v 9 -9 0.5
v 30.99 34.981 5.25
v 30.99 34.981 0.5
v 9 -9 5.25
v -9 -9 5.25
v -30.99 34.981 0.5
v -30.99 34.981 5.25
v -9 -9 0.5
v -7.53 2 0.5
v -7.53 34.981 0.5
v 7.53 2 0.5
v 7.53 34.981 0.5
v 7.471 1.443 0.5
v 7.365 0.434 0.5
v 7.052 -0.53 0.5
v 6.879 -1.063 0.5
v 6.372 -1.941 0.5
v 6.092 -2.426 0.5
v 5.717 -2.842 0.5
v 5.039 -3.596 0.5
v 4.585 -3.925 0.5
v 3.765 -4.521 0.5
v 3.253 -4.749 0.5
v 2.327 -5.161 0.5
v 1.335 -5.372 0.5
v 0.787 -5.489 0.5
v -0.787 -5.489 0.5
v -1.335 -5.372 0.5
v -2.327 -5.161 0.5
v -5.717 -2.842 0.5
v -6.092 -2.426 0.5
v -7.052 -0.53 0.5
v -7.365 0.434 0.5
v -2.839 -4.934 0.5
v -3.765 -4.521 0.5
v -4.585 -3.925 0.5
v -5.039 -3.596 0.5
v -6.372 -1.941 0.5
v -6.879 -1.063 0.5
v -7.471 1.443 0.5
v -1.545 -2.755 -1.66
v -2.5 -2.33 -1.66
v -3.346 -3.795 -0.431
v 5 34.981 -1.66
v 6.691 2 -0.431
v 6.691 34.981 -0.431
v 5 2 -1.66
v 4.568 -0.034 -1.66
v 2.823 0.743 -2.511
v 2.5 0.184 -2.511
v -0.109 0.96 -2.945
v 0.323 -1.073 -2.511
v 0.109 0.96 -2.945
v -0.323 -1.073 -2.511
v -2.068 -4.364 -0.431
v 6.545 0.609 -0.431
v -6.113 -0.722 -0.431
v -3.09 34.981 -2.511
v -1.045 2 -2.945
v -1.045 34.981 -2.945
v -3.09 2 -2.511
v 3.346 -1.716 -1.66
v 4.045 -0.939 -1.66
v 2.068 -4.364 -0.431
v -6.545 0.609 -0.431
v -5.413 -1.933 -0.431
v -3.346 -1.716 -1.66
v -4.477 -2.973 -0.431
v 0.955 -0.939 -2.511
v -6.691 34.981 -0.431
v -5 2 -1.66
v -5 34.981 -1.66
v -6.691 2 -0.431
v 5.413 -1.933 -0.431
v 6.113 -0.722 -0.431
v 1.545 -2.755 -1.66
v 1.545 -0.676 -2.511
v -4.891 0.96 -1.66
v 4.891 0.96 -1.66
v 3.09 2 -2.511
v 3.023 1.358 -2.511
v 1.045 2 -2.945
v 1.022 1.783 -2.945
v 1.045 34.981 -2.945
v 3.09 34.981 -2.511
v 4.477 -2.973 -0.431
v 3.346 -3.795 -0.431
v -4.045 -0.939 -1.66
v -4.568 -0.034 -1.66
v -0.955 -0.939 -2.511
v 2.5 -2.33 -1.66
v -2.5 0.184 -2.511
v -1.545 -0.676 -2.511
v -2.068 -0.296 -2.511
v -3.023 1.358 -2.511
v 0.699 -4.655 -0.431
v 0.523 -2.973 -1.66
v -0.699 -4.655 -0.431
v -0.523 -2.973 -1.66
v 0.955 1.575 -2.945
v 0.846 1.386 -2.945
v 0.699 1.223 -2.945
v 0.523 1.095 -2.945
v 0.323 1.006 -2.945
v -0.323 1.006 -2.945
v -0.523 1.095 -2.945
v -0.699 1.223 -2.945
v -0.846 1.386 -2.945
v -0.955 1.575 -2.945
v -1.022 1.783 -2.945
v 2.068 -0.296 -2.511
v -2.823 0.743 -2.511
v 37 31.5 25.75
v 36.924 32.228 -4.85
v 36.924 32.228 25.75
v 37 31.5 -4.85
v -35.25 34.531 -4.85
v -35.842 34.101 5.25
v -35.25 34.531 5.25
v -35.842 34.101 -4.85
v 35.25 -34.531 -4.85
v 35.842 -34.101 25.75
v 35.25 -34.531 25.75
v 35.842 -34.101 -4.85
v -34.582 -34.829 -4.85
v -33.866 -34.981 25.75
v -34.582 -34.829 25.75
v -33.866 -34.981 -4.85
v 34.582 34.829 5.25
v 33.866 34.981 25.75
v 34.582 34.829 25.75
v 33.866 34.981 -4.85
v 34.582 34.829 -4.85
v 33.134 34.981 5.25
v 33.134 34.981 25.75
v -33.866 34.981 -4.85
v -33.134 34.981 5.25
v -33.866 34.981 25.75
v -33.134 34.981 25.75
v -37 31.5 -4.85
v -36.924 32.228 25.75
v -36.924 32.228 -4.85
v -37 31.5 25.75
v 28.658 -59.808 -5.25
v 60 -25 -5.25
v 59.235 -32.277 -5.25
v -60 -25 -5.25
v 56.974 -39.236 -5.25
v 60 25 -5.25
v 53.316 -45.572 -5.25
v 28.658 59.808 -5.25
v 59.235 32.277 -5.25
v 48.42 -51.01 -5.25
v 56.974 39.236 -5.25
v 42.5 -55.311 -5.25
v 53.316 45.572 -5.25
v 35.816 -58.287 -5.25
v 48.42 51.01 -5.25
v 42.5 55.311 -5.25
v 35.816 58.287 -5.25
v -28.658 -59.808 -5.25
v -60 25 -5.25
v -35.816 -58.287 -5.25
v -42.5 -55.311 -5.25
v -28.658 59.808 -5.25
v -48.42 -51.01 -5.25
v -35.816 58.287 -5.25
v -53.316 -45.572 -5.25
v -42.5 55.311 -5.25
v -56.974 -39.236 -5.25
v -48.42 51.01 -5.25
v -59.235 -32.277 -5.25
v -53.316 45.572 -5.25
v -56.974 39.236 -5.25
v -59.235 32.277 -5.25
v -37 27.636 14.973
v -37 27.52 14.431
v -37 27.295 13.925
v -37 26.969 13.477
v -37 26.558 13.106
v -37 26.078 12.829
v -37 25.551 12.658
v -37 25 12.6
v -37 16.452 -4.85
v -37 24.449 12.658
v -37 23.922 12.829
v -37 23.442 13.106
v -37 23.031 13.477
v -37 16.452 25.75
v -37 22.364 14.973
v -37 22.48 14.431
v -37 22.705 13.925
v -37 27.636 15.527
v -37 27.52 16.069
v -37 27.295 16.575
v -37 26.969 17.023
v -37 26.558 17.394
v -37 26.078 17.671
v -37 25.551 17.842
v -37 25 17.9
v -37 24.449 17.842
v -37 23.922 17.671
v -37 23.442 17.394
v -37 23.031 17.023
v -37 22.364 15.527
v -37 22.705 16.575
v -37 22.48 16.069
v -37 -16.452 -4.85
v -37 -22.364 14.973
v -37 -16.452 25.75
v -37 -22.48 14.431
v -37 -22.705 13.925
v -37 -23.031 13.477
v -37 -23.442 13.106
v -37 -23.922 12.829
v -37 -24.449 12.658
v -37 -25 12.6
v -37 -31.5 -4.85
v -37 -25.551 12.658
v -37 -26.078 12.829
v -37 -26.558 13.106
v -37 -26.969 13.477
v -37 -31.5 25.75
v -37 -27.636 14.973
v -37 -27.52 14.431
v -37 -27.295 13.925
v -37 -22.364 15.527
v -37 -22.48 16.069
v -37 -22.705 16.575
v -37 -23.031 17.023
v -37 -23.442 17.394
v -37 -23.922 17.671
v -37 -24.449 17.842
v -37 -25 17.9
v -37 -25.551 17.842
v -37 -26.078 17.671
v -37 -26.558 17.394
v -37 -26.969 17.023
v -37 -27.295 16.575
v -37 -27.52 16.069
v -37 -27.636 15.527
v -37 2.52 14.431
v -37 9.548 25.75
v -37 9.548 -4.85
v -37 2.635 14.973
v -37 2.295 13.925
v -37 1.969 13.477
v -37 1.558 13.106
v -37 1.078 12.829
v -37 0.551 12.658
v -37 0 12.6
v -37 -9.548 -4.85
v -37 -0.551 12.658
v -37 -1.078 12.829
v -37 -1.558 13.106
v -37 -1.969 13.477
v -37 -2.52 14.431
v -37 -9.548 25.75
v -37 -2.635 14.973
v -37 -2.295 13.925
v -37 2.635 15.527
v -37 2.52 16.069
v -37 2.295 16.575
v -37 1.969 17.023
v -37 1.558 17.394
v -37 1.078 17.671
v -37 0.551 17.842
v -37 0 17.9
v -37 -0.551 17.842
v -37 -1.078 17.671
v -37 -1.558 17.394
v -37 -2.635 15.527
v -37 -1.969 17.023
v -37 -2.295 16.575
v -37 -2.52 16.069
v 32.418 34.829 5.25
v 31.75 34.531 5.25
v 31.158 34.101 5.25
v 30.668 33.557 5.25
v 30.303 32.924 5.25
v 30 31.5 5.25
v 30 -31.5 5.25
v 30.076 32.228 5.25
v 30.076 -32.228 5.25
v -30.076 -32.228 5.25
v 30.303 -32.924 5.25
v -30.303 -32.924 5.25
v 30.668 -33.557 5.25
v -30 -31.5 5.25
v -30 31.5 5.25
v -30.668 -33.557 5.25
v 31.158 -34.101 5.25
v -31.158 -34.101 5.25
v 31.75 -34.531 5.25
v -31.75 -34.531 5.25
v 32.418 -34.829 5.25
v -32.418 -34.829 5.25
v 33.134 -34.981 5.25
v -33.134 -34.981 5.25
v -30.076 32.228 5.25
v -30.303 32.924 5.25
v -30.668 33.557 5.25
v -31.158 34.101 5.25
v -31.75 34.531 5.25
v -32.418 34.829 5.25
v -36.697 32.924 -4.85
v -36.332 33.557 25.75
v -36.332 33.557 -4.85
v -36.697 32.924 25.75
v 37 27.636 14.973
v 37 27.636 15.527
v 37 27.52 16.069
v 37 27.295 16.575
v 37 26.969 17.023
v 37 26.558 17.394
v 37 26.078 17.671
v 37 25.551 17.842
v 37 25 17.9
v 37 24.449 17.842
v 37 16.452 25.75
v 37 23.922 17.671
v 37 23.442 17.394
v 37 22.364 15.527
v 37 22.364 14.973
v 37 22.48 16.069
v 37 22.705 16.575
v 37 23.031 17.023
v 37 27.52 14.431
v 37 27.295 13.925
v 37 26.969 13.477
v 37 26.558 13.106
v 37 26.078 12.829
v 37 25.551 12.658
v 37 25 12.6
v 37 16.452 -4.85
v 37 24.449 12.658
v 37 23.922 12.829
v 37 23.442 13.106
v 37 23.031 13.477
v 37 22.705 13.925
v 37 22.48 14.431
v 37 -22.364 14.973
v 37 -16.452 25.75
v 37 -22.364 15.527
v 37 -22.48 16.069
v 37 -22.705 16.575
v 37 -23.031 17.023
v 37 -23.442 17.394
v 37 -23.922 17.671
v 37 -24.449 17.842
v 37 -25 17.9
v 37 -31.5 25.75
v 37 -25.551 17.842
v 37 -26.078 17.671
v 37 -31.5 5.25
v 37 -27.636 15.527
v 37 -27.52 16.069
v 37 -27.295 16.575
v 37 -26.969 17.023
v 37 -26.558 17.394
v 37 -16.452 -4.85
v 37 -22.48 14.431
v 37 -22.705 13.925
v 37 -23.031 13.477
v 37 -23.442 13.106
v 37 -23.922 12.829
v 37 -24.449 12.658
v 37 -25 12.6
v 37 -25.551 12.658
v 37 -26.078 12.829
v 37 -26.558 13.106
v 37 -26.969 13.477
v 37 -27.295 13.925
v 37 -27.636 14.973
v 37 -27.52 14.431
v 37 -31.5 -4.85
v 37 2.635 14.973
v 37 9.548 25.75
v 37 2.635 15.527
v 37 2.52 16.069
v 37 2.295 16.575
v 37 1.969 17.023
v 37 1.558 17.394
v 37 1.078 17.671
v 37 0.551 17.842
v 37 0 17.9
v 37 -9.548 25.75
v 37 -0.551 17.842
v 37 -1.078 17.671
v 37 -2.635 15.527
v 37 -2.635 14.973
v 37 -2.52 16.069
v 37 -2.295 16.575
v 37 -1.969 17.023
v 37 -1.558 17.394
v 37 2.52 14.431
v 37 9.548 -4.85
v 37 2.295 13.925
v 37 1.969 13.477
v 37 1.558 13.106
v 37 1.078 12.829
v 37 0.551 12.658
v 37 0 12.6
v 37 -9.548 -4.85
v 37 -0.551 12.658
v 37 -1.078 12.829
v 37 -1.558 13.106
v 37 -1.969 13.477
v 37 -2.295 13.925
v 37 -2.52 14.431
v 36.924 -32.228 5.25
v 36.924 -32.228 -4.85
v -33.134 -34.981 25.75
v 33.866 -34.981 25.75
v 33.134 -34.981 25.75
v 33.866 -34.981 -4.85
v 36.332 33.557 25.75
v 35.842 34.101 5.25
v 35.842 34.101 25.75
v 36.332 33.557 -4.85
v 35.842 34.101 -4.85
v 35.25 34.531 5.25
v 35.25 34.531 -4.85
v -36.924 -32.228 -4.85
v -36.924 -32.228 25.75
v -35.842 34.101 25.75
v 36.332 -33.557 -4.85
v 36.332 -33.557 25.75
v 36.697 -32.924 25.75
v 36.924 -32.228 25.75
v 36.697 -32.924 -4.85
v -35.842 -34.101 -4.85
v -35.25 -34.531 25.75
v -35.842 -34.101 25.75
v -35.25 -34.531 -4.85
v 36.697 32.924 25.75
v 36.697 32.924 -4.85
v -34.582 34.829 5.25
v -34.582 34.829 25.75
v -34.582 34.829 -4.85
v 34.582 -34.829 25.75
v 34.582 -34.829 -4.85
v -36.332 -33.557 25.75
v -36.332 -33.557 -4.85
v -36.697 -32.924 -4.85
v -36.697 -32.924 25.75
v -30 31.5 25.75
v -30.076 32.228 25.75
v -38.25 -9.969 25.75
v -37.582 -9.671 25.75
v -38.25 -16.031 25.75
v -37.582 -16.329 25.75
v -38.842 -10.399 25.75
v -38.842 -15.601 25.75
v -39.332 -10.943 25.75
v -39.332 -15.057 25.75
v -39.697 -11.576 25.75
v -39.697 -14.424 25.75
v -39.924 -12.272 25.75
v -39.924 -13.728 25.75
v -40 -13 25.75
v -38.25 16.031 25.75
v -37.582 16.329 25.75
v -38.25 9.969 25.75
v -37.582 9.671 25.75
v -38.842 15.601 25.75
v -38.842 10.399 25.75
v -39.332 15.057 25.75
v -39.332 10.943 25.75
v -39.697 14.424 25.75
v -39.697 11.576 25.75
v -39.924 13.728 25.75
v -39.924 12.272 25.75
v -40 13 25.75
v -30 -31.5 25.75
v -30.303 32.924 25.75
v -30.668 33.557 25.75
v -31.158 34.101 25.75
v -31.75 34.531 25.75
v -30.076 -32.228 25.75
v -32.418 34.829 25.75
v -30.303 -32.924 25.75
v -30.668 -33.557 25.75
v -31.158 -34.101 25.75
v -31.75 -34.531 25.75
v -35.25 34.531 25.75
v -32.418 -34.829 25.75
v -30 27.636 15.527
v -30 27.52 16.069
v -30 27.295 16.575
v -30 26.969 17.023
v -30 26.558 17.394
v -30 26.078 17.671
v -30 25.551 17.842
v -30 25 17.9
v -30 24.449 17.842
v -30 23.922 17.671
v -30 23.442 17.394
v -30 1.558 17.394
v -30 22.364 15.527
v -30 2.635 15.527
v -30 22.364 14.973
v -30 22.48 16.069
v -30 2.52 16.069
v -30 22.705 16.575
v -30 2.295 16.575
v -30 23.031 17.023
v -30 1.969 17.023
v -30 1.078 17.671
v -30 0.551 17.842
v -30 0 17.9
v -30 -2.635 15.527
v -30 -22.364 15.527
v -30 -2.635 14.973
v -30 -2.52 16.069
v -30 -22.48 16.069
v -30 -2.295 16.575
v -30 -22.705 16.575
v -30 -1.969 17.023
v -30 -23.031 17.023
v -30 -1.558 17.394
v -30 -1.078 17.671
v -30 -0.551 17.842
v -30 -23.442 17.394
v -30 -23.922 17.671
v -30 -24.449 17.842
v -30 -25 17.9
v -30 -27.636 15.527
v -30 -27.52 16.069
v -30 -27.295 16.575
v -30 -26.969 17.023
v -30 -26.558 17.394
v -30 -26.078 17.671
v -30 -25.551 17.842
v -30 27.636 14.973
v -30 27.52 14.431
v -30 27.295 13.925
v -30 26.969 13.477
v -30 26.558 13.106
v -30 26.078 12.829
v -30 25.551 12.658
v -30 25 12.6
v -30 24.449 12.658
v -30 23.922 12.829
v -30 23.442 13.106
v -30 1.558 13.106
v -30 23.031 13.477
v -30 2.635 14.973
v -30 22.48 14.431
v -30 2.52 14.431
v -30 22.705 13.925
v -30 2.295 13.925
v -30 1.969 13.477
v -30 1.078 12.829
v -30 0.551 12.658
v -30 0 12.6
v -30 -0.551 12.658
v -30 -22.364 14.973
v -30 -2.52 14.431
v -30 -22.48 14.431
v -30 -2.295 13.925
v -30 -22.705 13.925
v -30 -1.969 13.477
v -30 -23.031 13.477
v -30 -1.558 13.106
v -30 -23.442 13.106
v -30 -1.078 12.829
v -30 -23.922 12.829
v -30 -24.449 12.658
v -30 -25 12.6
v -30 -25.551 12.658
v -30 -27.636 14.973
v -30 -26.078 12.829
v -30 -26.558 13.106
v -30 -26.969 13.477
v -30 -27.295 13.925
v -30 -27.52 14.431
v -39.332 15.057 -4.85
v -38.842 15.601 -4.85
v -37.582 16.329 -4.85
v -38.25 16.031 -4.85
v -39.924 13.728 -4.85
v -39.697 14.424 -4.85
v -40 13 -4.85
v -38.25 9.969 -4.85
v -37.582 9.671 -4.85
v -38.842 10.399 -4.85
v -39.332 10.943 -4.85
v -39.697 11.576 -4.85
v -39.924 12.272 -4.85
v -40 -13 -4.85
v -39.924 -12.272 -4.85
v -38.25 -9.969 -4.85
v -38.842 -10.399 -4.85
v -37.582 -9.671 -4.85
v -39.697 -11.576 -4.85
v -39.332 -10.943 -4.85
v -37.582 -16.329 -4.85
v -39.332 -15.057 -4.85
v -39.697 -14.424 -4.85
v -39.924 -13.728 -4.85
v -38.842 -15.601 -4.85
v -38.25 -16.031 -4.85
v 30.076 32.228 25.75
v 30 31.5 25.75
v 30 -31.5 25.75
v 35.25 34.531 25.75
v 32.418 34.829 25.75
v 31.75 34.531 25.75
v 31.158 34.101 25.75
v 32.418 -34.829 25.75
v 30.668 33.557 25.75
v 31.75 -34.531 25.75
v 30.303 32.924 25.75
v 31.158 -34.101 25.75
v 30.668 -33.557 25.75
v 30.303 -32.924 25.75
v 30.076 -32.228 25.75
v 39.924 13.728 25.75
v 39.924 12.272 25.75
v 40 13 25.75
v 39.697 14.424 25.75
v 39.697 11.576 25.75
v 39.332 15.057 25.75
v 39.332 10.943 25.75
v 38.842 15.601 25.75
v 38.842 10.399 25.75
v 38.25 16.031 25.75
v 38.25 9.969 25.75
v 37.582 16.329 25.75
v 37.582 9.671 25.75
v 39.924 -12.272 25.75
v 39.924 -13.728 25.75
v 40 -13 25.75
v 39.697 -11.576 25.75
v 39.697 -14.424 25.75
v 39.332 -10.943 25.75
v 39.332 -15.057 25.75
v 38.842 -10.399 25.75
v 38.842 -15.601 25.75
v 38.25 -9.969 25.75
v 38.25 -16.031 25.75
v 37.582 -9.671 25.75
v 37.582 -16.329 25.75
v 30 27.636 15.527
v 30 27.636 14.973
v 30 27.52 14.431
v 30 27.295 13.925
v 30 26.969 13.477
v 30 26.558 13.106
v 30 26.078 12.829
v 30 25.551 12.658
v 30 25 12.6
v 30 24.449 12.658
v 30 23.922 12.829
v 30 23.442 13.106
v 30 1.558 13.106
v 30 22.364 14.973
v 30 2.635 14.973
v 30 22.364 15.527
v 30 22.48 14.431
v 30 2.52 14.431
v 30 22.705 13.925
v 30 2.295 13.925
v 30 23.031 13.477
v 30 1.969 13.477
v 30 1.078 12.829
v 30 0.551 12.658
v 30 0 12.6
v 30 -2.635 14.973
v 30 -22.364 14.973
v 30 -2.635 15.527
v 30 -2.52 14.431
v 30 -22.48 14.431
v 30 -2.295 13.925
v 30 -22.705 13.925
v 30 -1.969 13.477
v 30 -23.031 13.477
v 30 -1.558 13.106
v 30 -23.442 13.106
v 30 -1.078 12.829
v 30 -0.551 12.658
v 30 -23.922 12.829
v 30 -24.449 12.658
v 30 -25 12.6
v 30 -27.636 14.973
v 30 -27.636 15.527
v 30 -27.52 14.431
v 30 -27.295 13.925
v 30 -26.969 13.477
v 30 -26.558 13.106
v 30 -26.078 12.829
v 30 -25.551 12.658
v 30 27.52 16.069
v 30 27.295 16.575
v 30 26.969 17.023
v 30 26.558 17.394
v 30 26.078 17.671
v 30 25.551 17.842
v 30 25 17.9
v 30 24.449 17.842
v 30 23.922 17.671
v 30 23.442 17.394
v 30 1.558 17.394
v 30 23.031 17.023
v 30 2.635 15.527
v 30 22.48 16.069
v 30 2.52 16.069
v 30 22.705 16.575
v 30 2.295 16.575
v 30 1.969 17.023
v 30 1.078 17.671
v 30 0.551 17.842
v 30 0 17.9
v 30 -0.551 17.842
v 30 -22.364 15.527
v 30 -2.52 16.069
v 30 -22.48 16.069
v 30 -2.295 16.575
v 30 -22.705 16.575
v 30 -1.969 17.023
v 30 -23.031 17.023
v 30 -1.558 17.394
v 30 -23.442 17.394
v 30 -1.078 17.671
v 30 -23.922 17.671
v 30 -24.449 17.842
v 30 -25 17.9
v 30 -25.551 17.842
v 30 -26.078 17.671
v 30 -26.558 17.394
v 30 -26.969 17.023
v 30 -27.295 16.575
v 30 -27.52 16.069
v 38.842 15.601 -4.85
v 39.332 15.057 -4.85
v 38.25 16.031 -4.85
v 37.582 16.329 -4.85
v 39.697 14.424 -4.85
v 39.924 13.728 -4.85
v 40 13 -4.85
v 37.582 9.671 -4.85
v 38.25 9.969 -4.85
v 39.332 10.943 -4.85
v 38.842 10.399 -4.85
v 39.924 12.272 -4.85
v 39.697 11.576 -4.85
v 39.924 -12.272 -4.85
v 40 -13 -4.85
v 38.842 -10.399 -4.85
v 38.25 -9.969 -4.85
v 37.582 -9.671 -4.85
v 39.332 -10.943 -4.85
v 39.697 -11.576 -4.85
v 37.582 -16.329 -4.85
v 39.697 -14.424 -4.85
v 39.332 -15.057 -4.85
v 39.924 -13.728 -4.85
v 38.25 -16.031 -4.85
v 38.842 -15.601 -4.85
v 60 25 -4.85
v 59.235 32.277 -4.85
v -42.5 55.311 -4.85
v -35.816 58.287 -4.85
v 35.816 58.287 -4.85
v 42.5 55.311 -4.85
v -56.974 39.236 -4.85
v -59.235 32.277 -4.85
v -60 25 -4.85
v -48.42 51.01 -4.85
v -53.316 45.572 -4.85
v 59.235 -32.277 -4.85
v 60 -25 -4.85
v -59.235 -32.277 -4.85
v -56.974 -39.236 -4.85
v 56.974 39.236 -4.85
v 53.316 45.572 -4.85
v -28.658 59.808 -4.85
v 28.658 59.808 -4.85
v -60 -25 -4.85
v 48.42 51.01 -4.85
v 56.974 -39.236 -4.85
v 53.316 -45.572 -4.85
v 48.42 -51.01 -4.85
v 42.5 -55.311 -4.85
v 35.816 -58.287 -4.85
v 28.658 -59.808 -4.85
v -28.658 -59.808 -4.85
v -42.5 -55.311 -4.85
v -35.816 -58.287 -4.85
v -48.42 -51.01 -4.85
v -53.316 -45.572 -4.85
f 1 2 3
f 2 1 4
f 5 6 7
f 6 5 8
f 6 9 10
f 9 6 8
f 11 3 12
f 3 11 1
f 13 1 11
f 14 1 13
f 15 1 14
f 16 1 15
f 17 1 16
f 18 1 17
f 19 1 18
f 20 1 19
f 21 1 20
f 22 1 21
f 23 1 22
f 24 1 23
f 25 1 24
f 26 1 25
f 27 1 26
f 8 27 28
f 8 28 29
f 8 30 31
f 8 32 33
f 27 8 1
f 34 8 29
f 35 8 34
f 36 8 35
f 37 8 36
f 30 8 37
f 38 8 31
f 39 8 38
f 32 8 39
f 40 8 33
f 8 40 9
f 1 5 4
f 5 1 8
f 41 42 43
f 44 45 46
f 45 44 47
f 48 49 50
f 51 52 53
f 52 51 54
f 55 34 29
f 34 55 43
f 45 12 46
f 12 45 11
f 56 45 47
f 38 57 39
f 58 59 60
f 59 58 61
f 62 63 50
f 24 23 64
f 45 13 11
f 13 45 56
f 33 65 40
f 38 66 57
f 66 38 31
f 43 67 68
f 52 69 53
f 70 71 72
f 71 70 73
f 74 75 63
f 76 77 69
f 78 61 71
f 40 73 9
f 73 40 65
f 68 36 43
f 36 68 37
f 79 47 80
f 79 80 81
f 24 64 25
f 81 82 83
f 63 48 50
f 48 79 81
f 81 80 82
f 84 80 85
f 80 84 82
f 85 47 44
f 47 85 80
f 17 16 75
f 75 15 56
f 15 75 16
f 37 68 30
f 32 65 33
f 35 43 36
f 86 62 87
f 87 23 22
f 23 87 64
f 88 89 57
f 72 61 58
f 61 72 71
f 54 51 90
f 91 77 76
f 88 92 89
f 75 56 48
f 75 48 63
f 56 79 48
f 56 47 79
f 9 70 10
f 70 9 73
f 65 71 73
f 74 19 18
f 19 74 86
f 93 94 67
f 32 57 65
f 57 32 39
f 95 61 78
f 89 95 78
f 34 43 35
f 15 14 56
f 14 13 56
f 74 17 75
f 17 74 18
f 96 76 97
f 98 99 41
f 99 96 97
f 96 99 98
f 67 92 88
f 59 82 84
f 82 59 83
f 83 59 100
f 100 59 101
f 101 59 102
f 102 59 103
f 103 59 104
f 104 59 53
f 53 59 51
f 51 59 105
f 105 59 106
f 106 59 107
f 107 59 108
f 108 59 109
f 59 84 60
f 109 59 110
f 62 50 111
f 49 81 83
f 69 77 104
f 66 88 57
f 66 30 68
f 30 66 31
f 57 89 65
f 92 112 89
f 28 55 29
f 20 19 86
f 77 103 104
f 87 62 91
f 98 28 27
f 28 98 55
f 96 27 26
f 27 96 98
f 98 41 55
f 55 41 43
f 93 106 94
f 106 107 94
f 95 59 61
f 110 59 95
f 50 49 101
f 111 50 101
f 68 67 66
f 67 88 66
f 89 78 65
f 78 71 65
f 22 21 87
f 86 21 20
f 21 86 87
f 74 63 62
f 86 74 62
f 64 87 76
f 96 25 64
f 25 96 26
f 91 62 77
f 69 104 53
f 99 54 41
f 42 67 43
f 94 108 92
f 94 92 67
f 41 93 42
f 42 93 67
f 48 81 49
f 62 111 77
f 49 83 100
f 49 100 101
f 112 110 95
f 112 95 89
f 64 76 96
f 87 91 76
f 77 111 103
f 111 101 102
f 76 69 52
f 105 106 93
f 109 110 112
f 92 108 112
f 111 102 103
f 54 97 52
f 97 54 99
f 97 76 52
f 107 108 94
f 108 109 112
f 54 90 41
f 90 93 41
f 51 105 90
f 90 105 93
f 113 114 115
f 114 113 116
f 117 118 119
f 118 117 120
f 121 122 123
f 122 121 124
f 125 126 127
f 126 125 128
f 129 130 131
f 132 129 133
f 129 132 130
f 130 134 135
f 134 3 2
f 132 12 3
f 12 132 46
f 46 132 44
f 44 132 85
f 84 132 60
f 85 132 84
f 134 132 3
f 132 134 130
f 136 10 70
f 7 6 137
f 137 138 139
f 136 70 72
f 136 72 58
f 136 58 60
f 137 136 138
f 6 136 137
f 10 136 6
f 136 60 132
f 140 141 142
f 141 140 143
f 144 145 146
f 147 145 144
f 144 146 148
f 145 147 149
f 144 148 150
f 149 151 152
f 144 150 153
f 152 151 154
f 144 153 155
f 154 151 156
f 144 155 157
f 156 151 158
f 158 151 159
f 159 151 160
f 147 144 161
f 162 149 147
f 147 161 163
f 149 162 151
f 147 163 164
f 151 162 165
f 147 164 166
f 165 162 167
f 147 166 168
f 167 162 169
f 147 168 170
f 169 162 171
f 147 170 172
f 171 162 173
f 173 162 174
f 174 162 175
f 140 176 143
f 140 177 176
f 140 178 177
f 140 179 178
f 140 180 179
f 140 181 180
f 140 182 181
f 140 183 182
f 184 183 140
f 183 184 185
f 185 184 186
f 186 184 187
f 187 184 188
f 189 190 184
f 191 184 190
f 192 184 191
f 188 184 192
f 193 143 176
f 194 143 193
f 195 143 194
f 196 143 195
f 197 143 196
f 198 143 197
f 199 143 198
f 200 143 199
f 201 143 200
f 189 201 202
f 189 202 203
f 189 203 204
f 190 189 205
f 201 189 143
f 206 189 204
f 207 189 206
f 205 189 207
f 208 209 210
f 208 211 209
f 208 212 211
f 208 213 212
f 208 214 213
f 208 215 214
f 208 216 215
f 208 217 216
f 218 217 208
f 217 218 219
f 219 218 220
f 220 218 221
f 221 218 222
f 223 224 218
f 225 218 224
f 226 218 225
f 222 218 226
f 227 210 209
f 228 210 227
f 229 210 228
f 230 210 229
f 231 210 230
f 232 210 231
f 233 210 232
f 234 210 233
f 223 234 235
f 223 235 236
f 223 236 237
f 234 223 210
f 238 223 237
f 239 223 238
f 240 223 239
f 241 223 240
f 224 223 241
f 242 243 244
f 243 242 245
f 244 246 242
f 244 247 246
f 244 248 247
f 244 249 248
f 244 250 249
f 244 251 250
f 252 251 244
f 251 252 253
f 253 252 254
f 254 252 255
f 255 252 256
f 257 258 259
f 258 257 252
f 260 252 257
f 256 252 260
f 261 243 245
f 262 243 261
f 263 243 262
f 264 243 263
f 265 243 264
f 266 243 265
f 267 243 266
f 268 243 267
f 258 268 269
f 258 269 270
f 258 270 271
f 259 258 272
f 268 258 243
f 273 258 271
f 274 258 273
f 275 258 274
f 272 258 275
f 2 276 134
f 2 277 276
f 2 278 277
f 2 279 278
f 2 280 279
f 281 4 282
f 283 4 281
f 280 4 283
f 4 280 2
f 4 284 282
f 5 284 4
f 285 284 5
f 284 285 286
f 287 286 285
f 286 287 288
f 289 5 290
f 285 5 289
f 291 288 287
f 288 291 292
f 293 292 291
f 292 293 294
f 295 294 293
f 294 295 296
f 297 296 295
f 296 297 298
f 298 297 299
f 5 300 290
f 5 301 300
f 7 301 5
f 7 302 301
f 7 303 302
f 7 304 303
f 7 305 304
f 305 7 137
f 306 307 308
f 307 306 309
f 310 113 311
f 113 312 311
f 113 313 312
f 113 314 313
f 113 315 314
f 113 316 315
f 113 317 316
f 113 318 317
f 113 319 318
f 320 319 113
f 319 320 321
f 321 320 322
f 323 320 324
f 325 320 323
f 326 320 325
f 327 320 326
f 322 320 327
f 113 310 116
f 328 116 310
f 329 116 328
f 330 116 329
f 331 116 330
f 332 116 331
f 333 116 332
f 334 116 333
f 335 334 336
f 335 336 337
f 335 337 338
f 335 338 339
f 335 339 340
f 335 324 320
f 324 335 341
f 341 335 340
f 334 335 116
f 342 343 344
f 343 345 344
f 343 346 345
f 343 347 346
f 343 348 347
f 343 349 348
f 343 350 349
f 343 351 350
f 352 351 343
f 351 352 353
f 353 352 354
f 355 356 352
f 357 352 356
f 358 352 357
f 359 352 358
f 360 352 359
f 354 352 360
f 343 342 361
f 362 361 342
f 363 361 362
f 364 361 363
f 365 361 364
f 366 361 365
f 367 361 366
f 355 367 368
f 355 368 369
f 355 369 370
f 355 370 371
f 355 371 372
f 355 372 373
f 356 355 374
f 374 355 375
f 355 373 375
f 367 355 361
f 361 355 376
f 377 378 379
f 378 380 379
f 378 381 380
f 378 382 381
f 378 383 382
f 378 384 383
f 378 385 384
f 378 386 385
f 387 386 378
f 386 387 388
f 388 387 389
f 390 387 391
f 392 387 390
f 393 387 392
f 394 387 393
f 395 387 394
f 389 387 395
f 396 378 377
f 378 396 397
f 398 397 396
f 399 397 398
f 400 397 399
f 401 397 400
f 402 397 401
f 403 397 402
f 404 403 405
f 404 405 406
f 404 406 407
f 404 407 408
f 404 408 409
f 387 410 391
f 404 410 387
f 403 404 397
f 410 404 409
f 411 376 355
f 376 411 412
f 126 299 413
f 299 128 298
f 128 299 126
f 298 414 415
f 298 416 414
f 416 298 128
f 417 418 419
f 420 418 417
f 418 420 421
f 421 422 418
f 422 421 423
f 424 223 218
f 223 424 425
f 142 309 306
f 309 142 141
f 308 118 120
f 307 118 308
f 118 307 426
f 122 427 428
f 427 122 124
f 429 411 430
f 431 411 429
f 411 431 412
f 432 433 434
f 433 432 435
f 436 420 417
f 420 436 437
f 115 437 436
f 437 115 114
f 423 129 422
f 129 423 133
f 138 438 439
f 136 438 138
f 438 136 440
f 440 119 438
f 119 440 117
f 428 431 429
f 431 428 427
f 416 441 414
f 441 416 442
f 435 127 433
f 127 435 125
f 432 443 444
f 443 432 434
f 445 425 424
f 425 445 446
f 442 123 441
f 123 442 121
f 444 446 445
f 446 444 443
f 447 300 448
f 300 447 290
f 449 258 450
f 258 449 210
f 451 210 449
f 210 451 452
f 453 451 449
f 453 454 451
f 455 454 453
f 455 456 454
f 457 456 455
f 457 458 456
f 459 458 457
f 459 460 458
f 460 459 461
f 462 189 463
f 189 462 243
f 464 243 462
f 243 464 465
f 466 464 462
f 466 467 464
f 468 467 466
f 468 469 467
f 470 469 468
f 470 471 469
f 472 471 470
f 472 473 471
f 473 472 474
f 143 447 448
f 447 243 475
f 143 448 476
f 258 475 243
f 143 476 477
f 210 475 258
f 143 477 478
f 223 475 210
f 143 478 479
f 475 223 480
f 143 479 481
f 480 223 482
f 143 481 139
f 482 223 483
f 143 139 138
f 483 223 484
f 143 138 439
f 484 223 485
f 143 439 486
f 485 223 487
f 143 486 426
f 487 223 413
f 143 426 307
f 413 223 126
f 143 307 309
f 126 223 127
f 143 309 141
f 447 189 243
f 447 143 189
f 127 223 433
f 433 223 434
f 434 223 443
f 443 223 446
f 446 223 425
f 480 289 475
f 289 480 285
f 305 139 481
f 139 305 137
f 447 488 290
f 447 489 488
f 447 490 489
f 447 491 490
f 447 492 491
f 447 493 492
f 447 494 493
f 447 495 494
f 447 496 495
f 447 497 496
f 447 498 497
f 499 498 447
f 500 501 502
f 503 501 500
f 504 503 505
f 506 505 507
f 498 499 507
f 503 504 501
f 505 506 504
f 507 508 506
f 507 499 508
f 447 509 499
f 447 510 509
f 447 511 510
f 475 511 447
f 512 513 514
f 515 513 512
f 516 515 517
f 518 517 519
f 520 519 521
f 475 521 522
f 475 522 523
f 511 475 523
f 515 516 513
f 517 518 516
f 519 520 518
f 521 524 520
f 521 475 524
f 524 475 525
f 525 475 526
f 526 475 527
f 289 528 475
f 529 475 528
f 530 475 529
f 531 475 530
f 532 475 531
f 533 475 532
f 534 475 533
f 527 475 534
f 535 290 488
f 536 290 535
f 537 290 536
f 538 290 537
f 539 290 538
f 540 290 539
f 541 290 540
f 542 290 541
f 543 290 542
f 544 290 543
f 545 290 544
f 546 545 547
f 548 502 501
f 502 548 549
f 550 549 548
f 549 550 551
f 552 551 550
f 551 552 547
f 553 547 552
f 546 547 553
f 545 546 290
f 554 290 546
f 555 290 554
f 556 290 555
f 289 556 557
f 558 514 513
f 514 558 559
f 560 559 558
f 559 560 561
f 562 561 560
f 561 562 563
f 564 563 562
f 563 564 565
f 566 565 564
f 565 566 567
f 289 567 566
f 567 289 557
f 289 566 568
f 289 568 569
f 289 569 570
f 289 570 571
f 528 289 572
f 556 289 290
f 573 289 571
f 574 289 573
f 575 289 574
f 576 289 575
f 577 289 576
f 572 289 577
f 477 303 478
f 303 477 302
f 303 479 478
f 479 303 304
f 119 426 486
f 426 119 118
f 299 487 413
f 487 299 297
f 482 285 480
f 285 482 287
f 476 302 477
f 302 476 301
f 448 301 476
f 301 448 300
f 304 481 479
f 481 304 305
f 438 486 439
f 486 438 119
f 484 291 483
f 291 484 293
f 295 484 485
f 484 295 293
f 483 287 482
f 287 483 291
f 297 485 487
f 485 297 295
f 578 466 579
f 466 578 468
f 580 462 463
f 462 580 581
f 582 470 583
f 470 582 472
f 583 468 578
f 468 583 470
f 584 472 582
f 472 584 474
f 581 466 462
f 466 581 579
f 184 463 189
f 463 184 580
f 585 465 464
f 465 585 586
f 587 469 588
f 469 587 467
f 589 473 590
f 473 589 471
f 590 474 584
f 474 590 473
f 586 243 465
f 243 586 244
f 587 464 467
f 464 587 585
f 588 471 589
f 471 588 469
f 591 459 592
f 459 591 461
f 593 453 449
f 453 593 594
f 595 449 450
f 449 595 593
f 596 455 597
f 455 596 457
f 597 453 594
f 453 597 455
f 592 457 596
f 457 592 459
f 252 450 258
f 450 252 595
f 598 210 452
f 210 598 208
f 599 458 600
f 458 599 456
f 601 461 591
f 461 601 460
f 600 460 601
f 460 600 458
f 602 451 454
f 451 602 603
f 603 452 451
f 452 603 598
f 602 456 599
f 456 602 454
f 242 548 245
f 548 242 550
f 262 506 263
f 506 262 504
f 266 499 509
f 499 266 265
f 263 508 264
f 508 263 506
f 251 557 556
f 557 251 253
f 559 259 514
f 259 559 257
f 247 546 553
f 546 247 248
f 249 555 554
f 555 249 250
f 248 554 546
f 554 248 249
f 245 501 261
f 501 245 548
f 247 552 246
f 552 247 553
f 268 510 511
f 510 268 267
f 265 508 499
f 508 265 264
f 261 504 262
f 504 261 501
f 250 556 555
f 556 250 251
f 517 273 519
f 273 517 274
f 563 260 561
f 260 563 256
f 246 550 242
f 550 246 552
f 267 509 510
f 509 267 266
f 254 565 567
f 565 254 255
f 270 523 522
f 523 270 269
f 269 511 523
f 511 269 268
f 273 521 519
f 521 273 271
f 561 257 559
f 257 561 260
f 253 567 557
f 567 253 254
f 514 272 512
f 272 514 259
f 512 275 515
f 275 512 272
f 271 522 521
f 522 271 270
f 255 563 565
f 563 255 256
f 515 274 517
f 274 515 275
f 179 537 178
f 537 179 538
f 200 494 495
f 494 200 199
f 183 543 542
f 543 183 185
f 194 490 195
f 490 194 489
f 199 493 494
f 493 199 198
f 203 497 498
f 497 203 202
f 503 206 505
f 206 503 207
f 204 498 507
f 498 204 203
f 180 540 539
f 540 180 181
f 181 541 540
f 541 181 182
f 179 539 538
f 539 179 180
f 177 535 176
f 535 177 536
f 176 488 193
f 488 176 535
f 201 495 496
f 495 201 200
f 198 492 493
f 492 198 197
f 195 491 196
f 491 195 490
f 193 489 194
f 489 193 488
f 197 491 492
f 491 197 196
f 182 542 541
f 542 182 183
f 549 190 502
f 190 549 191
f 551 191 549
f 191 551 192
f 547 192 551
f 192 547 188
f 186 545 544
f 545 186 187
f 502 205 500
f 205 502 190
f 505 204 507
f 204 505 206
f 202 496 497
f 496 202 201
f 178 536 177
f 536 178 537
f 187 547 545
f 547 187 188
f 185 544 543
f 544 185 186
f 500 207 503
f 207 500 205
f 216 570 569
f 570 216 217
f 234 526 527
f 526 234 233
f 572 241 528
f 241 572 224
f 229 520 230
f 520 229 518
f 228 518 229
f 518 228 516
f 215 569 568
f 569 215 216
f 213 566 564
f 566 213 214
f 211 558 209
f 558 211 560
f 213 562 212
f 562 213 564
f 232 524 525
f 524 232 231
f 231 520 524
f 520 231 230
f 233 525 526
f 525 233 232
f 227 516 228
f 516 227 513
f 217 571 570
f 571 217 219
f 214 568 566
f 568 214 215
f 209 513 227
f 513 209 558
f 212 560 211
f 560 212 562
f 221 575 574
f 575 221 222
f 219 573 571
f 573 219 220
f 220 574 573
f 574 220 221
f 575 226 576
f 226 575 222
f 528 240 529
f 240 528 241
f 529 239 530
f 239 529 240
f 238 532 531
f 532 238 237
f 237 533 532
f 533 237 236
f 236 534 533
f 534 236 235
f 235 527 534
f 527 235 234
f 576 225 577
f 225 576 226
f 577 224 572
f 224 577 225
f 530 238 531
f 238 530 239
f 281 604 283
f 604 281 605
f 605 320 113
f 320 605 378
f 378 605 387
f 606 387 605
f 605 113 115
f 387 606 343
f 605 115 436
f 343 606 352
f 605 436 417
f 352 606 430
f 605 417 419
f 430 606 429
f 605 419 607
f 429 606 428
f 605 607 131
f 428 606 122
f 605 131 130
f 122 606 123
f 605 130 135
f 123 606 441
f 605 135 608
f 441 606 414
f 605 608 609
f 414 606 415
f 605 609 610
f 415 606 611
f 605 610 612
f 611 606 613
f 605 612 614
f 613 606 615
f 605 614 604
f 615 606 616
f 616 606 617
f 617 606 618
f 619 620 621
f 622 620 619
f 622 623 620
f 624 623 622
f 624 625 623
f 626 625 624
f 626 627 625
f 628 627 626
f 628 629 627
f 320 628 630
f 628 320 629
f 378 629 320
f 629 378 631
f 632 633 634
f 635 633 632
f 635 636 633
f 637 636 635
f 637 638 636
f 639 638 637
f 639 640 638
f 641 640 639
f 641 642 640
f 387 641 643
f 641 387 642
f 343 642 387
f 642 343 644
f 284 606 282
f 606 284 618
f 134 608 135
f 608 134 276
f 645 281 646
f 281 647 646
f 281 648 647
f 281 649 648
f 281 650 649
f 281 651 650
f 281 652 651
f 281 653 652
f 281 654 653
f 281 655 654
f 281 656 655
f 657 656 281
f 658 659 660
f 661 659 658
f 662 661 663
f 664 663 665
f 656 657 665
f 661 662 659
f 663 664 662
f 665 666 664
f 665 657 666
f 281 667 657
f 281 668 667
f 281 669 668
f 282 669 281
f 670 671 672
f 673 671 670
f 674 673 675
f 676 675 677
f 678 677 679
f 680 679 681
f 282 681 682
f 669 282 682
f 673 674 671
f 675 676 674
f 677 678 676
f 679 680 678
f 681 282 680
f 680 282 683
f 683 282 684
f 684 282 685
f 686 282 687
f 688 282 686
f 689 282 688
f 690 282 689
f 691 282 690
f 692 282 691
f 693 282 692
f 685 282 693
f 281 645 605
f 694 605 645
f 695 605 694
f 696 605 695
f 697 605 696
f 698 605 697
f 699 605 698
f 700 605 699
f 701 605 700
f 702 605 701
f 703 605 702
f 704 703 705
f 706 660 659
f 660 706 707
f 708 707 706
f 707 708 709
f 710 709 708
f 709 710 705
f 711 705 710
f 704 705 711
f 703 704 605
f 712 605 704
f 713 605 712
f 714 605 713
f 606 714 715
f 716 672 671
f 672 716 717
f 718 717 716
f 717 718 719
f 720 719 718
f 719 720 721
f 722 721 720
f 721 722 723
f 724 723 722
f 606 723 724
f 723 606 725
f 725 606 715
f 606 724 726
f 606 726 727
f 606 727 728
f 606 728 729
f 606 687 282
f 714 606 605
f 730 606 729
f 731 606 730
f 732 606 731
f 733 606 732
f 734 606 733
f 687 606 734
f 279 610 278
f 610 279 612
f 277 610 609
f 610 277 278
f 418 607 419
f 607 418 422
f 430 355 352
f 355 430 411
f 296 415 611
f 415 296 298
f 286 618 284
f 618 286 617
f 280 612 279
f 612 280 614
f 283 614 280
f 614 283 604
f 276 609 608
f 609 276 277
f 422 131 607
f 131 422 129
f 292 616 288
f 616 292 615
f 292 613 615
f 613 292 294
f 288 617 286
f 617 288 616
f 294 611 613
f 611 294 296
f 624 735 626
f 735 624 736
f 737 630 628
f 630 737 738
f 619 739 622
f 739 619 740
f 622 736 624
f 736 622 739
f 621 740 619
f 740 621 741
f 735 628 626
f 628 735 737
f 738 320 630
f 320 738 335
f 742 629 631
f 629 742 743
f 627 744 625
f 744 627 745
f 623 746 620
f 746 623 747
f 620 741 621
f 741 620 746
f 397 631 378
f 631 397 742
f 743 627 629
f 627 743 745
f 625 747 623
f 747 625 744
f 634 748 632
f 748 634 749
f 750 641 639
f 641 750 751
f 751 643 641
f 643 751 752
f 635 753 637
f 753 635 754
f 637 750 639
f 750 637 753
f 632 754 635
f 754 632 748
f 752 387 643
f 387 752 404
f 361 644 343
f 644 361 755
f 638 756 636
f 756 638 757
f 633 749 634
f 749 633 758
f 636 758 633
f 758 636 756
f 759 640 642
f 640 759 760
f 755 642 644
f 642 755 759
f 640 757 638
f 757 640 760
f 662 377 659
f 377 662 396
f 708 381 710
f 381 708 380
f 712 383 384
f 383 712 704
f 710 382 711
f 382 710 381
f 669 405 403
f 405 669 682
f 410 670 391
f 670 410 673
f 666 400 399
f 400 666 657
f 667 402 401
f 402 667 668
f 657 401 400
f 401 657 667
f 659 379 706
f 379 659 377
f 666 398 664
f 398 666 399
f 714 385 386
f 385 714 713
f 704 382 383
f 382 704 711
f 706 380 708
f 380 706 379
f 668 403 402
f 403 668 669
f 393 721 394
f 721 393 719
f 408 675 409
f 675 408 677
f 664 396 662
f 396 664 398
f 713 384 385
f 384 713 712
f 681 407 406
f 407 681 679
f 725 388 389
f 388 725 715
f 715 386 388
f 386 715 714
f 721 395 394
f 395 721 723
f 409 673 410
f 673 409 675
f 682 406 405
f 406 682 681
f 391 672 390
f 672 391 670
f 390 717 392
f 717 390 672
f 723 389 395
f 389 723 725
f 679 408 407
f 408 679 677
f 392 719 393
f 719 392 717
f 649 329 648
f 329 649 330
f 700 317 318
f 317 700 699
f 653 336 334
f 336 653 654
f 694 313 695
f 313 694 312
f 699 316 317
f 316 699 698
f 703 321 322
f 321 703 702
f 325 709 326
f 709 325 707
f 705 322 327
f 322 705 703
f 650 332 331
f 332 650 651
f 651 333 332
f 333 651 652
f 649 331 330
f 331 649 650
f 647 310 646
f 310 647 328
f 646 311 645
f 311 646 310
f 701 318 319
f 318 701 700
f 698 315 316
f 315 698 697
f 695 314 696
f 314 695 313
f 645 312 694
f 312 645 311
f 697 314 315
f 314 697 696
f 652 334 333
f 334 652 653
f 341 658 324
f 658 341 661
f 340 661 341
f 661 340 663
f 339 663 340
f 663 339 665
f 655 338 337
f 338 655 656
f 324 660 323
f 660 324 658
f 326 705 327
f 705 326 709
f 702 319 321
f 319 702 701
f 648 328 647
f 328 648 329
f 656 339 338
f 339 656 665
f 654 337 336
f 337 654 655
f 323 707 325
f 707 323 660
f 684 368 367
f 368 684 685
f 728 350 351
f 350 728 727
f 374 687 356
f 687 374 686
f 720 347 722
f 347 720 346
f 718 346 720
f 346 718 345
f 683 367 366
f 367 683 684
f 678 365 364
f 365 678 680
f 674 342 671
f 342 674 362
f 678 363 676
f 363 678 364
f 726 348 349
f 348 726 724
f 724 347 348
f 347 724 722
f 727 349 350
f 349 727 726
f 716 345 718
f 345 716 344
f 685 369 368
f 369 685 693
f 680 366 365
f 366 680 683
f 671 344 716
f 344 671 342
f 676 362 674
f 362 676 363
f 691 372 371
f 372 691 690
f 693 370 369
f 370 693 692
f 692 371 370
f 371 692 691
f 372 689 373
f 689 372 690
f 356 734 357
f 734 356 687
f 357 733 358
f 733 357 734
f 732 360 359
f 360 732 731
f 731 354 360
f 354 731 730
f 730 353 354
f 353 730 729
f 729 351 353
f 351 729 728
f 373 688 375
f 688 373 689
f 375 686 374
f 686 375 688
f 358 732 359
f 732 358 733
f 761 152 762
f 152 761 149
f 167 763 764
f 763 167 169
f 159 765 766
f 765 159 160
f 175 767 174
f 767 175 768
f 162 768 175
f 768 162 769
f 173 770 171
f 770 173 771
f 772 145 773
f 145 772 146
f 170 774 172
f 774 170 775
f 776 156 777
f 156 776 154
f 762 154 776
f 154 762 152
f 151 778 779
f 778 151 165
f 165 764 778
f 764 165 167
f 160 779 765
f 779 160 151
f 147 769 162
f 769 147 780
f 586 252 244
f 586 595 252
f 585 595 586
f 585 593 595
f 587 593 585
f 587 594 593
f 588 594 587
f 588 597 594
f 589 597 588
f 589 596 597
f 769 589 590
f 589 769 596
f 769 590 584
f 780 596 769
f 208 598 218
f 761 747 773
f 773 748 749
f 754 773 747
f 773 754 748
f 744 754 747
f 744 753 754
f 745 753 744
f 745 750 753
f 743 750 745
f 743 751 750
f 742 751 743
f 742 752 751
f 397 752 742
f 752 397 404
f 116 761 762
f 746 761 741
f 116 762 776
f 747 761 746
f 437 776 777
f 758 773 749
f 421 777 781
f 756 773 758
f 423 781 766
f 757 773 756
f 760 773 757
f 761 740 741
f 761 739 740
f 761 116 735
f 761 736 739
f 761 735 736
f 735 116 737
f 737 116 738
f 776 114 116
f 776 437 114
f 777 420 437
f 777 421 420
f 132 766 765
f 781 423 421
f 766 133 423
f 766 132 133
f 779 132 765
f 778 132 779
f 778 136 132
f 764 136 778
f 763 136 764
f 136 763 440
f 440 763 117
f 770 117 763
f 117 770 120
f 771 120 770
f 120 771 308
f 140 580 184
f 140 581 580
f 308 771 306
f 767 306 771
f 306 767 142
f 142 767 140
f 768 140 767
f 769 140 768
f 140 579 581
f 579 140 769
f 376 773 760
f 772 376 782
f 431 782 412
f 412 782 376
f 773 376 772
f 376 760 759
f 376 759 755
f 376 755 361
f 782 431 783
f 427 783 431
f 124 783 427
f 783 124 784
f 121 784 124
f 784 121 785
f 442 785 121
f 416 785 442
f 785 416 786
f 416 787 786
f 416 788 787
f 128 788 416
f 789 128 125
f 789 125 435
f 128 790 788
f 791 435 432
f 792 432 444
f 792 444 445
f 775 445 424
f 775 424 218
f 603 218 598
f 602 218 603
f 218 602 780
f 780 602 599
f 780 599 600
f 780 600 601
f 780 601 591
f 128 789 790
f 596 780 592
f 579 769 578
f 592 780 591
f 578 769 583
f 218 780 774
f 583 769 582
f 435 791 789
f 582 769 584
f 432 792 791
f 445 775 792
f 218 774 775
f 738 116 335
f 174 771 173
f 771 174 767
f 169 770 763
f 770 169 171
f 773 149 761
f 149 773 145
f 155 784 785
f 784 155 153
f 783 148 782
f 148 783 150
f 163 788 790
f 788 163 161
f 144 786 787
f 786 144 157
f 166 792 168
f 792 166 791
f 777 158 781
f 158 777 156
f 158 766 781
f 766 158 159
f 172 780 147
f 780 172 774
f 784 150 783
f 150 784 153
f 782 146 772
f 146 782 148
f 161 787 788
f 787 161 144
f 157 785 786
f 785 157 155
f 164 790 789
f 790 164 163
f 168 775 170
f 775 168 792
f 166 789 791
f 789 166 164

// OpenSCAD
$fn = 30;

depth = 10.5;


//plate4Point(40,20,10.5,7); // 10.5 is the default spacer needed. Save for checking.


difference(){
	plate4Point(74,70,depth,7); // back
	translate([0,22,4]) color("RED") plateCutout();
}

mountRails(-33.5,0,10.25);

translate([0,0,-5.05]) plate4Point(120,120,.4,70); // for extra hold to the bed.


//# translate([0,0,16]) cube([60,100,20],center=true); // 20 X 60 mm rail

module plateCutout(){
	hull(){
		cube([18, 62, 7], center=true);
		translate([0,22,0]) cube([62, 18, 7], center=true);

	}
	translate([0,22,0]) cube([70, 18, 7], center=true);

	translate([0,30,3]) hull(){
		sphere(r = 10);
		translate([0,-50,0]) sphere(r = 10);
	}

}

module mountRails(x,y,z){
	x1 = 5;
	y1 = 70;
	z1 = 31;
	d1 = 7;
	translate([x,y,z]) mountRail(x1,y1,z1,7);
	mirror([90,0,0]) translate([x,y,z]) mountRail(x1,y1,z1,7);
}

module mountRail(x,y,z,d){
	difference(){
		union(){
			plate2Point(x,y,z,d);
			translate([-3,13,0]) mountRailRidge(z,d);
			translate([-3,-13,0]) mountRailRidge(z,d);
		}
		translate([0,0,5]) bolt5mm(z,d);
		translate([0,25,5]) bolt5mm(z,d);
		translate([0,-25,5]) bolt5mm(z,d);
	}
}

module mountRailRidge(h,d){
cylinder(h=h, d=d, center=true);
}


module plate2Point(x,y,z,d){
	hull(){
		color("green") translate([0 ,(y/2) -(d/2),0]) cylinder(h=z, d=d, center=true);
		color("blue")  translate([0 ,-(y/2)+(d/2),0]) cylinder(h=z, d=d, center=true);
	}
}

module plate4Point(x,y,z,d){
	hull(){
		color("green") translate([(x/2)-(d/2) ,(y/2) -(d/2),0]) cylinder(h=z, d=d, center=true);
		color("blue")  translate([(x/2)-(d/2) ,-(y/2)+(d/2),0]) cylinder(h=z, d=d, center=true);
		color("red")   translate([-(x/2)+(d/2),(y/2) -(d/2),0]) cylinder(h=z, d=d, center=true);
		color("grey")  translate([-(x/2)+(d/2),-(y/2)+(d/2),0]) cylinder(h=z, d=d, center=true);
	}
}



module bolt5mm(){
	color("Green") rotate([0,90,0]) cylinder(d=5.3,h=100,center=true);
}
